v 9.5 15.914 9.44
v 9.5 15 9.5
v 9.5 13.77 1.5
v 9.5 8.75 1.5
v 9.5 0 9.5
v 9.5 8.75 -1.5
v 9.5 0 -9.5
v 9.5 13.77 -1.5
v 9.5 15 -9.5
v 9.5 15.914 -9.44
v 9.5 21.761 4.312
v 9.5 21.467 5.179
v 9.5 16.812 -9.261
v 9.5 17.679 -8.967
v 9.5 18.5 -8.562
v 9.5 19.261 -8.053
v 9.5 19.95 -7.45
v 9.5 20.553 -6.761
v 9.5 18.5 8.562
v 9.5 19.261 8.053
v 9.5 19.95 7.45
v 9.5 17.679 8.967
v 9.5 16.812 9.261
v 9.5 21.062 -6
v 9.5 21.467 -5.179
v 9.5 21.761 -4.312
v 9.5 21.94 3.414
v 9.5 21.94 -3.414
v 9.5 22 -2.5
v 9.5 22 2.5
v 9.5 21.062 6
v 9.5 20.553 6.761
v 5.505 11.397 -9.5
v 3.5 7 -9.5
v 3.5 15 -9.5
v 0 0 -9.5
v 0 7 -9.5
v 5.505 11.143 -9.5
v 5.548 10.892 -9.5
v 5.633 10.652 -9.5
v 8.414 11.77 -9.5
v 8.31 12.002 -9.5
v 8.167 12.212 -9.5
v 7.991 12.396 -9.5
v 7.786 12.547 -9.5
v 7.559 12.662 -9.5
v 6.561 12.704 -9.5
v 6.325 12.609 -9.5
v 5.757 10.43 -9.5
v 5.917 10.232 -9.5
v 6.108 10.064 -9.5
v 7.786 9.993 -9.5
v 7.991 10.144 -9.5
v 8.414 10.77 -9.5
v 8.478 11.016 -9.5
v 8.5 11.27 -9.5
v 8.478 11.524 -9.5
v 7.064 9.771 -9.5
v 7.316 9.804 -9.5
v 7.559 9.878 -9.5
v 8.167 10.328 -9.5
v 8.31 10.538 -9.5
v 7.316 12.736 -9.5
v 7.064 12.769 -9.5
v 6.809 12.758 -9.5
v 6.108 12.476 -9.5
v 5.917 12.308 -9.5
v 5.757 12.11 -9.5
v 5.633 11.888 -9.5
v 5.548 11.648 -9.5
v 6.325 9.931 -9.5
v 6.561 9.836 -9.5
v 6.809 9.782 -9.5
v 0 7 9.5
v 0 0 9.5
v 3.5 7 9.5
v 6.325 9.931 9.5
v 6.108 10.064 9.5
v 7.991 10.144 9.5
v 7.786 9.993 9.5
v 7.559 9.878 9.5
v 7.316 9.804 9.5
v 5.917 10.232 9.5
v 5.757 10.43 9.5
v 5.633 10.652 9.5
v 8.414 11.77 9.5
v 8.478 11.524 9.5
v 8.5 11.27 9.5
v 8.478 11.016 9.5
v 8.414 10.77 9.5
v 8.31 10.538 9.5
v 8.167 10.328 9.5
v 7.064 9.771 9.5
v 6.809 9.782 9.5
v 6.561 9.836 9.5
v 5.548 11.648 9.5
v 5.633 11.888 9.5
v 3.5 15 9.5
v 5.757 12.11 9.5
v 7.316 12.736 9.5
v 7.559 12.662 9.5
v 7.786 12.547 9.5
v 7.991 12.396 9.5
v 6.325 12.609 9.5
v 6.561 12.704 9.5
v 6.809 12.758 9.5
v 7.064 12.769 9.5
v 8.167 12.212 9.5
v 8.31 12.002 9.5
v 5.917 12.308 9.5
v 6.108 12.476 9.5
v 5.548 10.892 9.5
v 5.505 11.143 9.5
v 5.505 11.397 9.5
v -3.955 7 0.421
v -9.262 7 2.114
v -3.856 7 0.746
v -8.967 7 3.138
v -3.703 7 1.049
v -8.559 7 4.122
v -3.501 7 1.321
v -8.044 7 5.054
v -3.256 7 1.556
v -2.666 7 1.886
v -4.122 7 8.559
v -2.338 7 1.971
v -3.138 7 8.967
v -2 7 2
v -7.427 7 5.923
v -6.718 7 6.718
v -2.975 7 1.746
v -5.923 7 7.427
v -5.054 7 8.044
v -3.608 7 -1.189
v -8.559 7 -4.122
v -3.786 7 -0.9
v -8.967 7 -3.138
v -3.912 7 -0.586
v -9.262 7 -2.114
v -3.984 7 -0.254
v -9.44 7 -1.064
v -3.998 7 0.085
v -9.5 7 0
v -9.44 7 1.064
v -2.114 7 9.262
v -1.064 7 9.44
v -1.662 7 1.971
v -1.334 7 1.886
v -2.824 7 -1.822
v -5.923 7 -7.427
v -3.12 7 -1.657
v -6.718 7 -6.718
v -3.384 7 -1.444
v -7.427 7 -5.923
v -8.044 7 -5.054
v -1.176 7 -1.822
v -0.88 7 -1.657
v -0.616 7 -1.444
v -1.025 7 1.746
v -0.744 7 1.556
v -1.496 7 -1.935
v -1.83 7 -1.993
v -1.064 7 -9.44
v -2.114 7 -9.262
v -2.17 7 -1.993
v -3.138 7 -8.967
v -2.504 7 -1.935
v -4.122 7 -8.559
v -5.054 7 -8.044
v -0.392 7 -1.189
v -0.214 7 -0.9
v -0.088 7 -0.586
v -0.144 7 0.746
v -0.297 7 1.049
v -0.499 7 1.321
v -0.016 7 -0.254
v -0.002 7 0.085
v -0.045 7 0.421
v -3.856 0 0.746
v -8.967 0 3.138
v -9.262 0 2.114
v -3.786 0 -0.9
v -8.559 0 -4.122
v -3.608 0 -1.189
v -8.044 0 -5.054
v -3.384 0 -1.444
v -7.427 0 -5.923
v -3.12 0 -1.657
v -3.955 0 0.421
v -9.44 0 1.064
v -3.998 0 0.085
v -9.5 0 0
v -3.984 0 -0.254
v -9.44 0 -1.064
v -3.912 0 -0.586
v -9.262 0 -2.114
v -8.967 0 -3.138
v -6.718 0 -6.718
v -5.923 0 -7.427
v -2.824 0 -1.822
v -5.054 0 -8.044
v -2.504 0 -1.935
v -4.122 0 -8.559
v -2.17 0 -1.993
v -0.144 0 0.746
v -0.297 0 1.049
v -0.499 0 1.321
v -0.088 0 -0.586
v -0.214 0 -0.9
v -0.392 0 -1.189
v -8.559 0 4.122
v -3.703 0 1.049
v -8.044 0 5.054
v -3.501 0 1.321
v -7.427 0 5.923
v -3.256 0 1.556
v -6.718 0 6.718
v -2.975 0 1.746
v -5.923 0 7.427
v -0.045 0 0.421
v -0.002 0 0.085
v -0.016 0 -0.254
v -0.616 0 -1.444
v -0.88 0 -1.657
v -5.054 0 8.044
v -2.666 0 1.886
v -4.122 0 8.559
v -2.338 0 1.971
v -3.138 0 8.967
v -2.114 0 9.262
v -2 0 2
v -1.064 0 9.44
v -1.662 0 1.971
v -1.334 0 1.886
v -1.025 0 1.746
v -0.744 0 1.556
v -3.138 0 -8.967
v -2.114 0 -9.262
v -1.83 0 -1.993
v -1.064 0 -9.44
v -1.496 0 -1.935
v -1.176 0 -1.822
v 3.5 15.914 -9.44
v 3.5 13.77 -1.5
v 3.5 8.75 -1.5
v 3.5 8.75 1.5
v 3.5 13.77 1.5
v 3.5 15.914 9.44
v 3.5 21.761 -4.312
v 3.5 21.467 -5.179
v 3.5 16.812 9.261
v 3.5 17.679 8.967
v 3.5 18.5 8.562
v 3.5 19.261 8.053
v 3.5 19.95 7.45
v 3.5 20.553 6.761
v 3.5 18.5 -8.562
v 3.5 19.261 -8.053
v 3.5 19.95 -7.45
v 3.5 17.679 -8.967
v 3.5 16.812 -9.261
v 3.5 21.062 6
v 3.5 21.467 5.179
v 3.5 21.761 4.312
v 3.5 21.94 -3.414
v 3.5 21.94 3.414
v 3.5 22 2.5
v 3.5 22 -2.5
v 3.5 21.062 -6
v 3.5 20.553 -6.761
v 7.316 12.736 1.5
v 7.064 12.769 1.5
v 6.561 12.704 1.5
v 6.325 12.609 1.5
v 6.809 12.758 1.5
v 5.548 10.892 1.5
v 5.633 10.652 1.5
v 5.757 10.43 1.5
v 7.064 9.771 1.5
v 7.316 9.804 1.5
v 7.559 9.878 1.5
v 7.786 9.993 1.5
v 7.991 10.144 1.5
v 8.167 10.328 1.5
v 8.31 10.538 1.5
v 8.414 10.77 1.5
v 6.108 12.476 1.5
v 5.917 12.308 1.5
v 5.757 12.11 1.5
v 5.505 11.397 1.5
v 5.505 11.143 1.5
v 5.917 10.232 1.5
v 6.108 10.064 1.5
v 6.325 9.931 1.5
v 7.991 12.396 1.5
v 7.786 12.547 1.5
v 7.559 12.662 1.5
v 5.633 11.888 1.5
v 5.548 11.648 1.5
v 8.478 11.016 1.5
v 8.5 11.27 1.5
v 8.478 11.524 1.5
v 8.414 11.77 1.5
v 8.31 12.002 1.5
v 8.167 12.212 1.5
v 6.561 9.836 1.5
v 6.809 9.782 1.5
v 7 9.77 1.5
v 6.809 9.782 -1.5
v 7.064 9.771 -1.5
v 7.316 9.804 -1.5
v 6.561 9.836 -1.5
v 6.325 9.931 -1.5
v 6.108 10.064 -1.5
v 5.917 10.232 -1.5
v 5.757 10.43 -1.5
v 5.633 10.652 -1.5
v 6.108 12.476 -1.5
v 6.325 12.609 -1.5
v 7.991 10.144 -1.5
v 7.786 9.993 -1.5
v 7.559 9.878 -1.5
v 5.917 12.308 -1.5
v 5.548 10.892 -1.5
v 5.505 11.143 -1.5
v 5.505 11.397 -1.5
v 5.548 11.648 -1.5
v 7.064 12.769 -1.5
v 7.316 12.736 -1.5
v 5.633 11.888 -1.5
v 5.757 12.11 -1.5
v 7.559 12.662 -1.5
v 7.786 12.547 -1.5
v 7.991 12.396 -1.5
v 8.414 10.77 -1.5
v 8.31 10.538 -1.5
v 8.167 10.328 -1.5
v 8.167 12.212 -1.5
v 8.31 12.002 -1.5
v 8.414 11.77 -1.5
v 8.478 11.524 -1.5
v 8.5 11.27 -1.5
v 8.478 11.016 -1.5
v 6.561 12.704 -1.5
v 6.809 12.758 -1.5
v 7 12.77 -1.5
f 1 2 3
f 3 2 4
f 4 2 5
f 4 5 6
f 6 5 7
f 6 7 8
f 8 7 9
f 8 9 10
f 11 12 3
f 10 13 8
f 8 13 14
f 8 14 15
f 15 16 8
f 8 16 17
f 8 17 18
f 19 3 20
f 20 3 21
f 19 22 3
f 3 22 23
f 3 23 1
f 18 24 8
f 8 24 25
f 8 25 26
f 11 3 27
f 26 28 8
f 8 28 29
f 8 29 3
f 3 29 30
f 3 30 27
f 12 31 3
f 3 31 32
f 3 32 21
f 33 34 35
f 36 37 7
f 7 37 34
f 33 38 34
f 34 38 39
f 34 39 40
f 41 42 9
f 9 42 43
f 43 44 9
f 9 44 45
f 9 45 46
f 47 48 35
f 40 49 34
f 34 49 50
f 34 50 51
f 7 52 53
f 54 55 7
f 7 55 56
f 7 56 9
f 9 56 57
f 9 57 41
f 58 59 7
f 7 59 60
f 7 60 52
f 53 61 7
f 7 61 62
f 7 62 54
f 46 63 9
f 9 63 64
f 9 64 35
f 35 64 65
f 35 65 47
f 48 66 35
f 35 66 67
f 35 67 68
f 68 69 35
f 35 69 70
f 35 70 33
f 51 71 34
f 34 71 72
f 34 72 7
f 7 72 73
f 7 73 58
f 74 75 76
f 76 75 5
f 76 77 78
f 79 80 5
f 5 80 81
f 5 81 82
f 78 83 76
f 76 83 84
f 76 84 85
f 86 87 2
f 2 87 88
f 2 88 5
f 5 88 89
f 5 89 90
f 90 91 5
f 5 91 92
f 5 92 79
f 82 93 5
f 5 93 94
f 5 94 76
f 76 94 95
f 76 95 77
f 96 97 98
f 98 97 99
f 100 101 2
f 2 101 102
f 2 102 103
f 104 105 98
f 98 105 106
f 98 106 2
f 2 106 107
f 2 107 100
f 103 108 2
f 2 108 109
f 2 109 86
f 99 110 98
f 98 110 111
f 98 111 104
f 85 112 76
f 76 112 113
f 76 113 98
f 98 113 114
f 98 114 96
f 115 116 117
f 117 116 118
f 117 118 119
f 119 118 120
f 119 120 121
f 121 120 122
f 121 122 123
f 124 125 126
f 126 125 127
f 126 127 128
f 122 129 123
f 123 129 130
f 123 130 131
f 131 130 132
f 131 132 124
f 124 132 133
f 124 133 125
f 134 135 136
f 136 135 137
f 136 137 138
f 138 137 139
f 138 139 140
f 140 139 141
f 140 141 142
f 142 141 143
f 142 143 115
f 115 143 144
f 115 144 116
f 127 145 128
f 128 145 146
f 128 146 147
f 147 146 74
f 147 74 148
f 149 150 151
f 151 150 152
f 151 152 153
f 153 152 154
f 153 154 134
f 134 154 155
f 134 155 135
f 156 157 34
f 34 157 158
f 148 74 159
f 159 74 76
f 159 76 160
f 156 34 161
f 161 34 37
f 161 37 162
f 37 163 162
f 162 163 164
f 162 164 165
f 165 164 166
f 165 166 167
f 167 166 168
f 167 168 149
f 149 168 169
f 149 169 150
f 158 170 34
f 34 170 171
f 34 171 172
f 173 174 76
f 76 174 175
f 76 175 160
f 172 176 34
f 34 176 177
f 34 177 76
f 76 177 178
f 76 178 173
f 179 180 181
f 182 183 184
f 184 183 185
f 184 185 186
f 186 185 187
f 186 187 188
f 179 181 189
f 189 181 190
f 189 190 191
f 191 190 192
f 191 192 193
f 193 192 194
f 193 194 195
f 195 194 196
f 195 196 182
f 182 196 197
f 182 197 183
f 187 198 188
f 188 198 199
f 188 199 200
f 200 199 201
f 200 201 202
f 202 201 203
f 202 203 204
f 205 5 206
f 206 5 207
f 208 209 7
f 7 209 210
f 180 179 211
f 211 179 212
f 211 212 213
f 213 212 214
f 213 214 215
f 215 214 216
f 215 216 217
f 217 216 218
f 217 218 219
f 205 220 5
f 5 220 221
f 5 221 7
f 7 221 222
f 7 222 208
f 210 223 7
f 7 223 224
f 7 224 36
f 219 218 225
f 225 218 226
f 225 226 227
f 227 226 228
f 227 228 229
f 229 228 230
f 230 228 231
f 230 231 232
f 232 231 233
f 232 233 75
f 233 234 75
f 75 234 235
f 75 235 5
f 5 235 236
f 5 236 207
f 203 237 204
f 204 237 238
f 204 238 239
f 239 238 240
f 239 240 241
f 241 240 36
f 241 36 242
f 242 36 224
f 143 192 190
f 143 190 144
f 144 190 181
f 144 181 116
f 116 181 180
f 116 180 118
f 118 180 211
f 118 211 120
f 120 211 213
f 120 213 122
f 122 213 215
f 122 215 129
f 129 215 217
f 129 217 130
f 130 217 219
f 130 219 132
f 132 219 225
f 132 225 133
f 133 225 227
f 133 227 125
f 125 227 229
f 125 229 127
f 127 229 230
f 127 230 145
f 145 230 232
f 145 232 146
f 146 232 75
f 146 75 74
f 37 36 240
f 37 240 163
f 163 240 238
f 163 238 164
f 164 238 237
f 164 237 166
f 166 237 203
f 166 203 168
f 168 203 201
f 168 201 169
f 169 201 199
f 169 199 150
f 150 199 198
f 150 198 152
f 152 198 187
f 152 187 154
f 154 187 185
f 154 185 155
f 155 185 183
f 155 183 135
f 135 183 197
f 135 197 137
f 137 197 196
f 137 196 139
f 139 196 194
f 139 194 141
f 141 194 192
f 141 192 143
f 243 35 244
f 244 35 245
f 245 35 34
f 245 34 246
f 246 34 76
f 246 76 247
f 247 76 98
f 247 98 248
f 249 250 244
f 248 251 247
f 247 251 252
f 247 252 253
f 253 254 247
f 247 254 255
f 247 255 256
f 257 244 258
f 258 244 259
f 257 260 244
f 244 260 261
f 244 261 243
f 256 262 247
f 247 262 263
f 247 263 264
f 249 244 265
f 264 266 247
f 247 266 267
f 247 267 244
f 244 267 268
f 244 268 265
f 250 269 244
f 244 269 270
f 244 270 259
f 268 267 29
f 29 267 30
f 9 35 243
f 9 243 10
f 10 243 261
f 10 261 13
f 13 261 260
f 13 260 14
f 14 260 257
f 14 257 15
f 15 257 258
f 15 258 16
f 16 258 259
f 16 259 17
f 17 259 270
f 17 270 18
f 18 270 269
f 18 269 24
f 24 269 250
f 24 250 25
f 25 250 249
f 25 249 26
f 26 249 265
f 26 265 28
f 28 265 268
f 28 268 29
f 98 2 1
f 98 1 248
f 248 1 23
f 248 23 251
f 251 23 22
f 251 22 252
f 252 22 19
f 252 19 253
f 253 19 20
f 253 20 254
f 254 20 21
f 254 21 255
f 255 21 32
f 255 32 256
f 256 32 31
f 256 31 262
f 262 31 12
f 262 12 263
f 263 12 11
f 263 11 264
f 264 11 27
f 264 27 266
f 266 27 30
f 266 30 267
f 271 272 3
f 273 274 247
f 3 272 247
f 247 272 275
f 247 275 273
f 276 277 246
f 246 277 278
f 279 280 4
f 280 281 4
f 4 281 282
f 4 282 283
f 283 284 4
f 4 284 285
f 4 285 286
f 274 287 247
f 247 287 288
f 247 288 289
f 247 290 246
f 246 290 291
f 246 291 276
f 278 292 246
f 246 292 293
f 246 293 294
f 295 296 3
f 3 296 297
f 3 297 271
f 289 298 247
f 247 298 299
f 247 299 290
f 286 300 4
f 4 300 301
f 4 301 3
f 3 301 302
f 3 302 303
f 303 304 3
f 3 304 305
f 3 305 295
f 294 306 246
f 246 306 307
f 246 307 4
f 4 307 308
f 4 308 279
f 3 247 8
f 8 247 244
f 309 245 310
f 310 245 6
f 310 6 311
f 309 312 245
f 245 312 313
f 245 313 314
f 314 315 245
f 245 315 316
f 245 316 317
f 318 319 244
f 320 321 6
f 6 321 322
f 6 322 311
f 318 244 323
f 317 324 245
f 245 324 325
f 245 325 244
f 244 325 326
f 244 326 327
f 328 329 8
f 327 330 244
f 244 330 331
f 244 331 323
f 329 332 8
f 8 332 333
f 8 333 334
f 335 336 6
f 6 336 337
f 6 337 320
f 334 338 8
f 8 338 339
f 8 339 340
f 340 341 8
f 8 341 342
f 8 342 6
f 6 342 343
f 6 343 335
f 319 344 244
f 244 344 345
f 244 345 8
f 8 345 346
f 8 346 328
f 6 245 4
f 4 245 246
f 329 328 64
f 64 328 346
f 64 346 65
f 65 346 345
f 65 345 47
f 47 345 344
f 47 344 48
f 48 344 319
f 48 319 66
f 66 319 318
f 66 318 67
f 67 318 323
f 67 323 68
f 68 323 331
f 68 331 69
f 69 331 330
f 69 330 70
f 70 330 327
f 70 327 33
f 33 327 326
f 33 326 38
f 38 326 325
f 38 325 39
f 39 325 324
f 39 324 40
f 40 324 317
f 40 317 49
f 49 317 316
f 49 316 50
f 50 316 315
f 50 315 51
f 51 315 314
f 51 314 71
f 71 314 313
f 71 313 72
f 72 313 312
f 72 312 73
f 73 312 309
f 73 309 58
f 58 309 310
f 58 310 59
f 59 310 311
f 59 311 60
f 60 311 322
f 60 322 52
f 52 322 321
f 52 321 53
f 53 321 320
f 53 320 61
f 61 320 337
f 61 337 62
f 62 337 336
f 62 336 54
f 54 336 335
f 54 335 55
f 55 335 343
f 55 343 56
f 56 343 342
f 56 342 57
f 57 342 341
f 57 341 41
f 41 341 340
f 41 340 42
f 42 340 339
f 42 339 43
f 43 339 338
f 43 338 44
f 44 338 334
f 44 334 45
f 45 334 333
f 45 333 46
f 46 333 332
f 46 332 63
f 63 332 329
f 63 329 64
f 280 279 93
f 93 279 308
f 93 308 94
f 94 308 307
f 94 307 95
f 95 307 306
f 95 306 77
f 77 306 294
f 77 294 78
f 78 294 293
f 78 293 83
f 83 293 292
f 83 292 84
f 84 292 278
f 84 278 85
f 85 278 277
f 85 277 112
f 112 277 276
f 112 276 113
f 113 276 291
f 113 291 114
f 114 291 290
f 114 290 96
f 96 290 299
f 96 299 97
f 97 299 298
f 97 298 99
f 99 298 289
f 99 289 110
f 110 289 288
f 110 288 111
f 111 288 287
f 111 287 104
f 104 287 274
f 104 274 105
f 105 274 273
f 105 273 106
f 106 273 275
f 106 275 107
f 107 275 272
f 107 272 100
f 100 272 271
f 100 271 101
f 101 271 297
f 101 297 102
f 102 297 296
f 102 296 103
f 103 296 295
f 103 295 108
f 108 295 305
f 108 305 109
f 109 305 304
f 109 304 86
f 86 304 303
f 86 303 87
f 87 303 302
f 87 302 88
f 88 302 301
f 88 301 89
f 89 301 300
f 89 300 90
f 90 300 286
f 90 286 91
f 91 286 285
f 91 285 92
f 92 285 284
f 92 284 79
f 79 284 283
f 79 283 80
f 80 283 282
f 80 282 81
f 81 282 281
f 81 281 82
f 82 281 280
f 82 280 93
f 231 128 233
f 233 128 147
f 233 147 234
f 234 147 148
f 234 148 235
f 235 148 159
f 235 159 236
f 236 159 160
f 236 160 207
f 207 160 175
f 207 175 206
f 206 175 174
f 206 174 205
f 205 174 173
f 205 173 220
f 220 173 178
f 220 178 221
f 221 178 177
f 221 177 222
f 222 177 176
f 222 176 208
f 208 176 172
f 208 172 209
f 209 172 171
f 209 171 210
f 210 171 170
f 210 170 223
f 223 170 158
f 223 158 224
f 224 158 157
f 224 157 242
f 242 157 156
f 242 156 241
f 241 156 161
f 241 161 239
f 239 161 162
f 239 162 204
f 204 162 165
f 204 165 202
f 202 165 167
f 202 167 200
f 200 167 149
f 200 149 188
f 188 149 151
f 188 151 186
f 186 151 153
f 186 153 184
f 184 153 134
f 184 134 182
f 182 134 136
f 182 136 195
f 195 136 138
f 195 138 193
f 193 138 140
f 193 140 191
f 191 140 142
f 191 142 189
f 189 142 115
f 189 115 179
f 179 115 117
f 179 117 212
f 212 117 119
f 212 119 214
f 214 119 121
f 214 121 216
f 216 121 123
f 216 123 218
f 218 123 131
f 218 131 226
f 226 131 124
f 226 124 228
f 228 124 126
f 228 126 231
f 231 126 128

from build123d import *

# Parameters (mm, degrees)
SKETCH1_W               = 19
SKETCH1_H               = 19
BOSS_EXTRUDE1_DEPTH     = 7
FILLET1_R               = 9.5
SKETCH2_W               = 6
SKETCH2_H               = 19
BOSS_EXTRUDE2_DEPTH     = 15
FILLET2_R               = 7
SKETCH3_W               = 3
SKETCH3_H               = 5.02
CUT_EXTRUDE1_DEPTH      = 31.581857367
CUT_EXTRUDE2_DEPTH      = 27.367593747
CUT_EXTRUDE2_DEPTH_BACK = 27.367593747
SKETCH4_R               = 1.5
SKETCH5_R               = 2
CUT_EXTRUDE3_DEPTH      = 21.137030566


with BuildPart() as part:
    # Sketch1 → Boss-Extrude1 (new body)
    with BuildSketch(Plane(origin=(0, 0, 0), x_dir=(1, 0, 0), z_dir=(0, 1, 0))):
        Rectangle(SKETCH1_W, SKETCH1_H)
    extrude(amount=BOSS_EXTRUDE1_DEPTH)

    # Fillet1
    fillet1_edges = [part.edges().sort_by_distance(p)[0] for p in [
        (-9.5, 3.5, -9.5),
        (-9.5, 3.5, 9.5),
    ]]
    fillet(fillet1_edges, radius=FILLET1_R - 0.0001)  # a hair under: the kernel refuses the full size

    # Sketch2 → Boss-Extrude2 (add)
    with BuildSketch(Plane(origin=(0, 7, 0), x_dir=(1, 0, 0), z_dir=(0, 1, 0))):
        with Locations((6.5, 0)):
            Rectangle(SKETCH2_W, SKETCH2_H)
    extrude(amount=BOSS_EXTRUDE2_DEPTH)

    # Fillet2
    fillet2_edges = [part.edges().sort_by_distance(p)[0] for p in [
        (6.5, 22, -9.5),
        (6.5, 22, 9.5),
    ]]
    fillet(fillet2_edges, radius=FILLET2_R)

    # Sketch3 → Cut-Extrude1 (cut, through all)
    with BuildSketch(Plane(origin=(9.5, 0, 0), x_dir=(0, 0, -1), z_dir=(1, 0, 0))):
        with Locations((0, 11.26)):
            Rectangle(SKETCH3_W, SKETCH3_H)
    extrude(amount=-CUT_EXTRUDE1_DEPTH, mode=Mode.SUBTRACT)

    # Sketch4 → Cut-Extrude2 (cut, two sides: drawn at the far end of the back side and taken through both)
    with BuildSketch(Plane.XY.offset(-1.5).offset(-CUT_EXTRUDE2_DEPTH_BACK)):
        with Locations((7, 11.27)):
            Circle(SKETCH4_R)
    extrude(amount=CUT_EXTRUDE2_DEPTH + CUT_EXTRUDE2_DEPTH_BACK, mode=Mode.SUBTRACT)

    # Sketch5 → Cut-Extrude3 (cut, through all)
    with BuildSketch(Plane(origin=(0, 7, 0), x_dir=(1, 0, 0), z_dir=(0, 1, 0))):
        with Locations(Location((-2, 0, 0), (0, 0, 270))):
            Circle(SKETCH5_R)
    extrude(amount=-CUT_EXTRUDE3_DEPTH, mode=Mode.SUBTRACT)


solid = part.part
